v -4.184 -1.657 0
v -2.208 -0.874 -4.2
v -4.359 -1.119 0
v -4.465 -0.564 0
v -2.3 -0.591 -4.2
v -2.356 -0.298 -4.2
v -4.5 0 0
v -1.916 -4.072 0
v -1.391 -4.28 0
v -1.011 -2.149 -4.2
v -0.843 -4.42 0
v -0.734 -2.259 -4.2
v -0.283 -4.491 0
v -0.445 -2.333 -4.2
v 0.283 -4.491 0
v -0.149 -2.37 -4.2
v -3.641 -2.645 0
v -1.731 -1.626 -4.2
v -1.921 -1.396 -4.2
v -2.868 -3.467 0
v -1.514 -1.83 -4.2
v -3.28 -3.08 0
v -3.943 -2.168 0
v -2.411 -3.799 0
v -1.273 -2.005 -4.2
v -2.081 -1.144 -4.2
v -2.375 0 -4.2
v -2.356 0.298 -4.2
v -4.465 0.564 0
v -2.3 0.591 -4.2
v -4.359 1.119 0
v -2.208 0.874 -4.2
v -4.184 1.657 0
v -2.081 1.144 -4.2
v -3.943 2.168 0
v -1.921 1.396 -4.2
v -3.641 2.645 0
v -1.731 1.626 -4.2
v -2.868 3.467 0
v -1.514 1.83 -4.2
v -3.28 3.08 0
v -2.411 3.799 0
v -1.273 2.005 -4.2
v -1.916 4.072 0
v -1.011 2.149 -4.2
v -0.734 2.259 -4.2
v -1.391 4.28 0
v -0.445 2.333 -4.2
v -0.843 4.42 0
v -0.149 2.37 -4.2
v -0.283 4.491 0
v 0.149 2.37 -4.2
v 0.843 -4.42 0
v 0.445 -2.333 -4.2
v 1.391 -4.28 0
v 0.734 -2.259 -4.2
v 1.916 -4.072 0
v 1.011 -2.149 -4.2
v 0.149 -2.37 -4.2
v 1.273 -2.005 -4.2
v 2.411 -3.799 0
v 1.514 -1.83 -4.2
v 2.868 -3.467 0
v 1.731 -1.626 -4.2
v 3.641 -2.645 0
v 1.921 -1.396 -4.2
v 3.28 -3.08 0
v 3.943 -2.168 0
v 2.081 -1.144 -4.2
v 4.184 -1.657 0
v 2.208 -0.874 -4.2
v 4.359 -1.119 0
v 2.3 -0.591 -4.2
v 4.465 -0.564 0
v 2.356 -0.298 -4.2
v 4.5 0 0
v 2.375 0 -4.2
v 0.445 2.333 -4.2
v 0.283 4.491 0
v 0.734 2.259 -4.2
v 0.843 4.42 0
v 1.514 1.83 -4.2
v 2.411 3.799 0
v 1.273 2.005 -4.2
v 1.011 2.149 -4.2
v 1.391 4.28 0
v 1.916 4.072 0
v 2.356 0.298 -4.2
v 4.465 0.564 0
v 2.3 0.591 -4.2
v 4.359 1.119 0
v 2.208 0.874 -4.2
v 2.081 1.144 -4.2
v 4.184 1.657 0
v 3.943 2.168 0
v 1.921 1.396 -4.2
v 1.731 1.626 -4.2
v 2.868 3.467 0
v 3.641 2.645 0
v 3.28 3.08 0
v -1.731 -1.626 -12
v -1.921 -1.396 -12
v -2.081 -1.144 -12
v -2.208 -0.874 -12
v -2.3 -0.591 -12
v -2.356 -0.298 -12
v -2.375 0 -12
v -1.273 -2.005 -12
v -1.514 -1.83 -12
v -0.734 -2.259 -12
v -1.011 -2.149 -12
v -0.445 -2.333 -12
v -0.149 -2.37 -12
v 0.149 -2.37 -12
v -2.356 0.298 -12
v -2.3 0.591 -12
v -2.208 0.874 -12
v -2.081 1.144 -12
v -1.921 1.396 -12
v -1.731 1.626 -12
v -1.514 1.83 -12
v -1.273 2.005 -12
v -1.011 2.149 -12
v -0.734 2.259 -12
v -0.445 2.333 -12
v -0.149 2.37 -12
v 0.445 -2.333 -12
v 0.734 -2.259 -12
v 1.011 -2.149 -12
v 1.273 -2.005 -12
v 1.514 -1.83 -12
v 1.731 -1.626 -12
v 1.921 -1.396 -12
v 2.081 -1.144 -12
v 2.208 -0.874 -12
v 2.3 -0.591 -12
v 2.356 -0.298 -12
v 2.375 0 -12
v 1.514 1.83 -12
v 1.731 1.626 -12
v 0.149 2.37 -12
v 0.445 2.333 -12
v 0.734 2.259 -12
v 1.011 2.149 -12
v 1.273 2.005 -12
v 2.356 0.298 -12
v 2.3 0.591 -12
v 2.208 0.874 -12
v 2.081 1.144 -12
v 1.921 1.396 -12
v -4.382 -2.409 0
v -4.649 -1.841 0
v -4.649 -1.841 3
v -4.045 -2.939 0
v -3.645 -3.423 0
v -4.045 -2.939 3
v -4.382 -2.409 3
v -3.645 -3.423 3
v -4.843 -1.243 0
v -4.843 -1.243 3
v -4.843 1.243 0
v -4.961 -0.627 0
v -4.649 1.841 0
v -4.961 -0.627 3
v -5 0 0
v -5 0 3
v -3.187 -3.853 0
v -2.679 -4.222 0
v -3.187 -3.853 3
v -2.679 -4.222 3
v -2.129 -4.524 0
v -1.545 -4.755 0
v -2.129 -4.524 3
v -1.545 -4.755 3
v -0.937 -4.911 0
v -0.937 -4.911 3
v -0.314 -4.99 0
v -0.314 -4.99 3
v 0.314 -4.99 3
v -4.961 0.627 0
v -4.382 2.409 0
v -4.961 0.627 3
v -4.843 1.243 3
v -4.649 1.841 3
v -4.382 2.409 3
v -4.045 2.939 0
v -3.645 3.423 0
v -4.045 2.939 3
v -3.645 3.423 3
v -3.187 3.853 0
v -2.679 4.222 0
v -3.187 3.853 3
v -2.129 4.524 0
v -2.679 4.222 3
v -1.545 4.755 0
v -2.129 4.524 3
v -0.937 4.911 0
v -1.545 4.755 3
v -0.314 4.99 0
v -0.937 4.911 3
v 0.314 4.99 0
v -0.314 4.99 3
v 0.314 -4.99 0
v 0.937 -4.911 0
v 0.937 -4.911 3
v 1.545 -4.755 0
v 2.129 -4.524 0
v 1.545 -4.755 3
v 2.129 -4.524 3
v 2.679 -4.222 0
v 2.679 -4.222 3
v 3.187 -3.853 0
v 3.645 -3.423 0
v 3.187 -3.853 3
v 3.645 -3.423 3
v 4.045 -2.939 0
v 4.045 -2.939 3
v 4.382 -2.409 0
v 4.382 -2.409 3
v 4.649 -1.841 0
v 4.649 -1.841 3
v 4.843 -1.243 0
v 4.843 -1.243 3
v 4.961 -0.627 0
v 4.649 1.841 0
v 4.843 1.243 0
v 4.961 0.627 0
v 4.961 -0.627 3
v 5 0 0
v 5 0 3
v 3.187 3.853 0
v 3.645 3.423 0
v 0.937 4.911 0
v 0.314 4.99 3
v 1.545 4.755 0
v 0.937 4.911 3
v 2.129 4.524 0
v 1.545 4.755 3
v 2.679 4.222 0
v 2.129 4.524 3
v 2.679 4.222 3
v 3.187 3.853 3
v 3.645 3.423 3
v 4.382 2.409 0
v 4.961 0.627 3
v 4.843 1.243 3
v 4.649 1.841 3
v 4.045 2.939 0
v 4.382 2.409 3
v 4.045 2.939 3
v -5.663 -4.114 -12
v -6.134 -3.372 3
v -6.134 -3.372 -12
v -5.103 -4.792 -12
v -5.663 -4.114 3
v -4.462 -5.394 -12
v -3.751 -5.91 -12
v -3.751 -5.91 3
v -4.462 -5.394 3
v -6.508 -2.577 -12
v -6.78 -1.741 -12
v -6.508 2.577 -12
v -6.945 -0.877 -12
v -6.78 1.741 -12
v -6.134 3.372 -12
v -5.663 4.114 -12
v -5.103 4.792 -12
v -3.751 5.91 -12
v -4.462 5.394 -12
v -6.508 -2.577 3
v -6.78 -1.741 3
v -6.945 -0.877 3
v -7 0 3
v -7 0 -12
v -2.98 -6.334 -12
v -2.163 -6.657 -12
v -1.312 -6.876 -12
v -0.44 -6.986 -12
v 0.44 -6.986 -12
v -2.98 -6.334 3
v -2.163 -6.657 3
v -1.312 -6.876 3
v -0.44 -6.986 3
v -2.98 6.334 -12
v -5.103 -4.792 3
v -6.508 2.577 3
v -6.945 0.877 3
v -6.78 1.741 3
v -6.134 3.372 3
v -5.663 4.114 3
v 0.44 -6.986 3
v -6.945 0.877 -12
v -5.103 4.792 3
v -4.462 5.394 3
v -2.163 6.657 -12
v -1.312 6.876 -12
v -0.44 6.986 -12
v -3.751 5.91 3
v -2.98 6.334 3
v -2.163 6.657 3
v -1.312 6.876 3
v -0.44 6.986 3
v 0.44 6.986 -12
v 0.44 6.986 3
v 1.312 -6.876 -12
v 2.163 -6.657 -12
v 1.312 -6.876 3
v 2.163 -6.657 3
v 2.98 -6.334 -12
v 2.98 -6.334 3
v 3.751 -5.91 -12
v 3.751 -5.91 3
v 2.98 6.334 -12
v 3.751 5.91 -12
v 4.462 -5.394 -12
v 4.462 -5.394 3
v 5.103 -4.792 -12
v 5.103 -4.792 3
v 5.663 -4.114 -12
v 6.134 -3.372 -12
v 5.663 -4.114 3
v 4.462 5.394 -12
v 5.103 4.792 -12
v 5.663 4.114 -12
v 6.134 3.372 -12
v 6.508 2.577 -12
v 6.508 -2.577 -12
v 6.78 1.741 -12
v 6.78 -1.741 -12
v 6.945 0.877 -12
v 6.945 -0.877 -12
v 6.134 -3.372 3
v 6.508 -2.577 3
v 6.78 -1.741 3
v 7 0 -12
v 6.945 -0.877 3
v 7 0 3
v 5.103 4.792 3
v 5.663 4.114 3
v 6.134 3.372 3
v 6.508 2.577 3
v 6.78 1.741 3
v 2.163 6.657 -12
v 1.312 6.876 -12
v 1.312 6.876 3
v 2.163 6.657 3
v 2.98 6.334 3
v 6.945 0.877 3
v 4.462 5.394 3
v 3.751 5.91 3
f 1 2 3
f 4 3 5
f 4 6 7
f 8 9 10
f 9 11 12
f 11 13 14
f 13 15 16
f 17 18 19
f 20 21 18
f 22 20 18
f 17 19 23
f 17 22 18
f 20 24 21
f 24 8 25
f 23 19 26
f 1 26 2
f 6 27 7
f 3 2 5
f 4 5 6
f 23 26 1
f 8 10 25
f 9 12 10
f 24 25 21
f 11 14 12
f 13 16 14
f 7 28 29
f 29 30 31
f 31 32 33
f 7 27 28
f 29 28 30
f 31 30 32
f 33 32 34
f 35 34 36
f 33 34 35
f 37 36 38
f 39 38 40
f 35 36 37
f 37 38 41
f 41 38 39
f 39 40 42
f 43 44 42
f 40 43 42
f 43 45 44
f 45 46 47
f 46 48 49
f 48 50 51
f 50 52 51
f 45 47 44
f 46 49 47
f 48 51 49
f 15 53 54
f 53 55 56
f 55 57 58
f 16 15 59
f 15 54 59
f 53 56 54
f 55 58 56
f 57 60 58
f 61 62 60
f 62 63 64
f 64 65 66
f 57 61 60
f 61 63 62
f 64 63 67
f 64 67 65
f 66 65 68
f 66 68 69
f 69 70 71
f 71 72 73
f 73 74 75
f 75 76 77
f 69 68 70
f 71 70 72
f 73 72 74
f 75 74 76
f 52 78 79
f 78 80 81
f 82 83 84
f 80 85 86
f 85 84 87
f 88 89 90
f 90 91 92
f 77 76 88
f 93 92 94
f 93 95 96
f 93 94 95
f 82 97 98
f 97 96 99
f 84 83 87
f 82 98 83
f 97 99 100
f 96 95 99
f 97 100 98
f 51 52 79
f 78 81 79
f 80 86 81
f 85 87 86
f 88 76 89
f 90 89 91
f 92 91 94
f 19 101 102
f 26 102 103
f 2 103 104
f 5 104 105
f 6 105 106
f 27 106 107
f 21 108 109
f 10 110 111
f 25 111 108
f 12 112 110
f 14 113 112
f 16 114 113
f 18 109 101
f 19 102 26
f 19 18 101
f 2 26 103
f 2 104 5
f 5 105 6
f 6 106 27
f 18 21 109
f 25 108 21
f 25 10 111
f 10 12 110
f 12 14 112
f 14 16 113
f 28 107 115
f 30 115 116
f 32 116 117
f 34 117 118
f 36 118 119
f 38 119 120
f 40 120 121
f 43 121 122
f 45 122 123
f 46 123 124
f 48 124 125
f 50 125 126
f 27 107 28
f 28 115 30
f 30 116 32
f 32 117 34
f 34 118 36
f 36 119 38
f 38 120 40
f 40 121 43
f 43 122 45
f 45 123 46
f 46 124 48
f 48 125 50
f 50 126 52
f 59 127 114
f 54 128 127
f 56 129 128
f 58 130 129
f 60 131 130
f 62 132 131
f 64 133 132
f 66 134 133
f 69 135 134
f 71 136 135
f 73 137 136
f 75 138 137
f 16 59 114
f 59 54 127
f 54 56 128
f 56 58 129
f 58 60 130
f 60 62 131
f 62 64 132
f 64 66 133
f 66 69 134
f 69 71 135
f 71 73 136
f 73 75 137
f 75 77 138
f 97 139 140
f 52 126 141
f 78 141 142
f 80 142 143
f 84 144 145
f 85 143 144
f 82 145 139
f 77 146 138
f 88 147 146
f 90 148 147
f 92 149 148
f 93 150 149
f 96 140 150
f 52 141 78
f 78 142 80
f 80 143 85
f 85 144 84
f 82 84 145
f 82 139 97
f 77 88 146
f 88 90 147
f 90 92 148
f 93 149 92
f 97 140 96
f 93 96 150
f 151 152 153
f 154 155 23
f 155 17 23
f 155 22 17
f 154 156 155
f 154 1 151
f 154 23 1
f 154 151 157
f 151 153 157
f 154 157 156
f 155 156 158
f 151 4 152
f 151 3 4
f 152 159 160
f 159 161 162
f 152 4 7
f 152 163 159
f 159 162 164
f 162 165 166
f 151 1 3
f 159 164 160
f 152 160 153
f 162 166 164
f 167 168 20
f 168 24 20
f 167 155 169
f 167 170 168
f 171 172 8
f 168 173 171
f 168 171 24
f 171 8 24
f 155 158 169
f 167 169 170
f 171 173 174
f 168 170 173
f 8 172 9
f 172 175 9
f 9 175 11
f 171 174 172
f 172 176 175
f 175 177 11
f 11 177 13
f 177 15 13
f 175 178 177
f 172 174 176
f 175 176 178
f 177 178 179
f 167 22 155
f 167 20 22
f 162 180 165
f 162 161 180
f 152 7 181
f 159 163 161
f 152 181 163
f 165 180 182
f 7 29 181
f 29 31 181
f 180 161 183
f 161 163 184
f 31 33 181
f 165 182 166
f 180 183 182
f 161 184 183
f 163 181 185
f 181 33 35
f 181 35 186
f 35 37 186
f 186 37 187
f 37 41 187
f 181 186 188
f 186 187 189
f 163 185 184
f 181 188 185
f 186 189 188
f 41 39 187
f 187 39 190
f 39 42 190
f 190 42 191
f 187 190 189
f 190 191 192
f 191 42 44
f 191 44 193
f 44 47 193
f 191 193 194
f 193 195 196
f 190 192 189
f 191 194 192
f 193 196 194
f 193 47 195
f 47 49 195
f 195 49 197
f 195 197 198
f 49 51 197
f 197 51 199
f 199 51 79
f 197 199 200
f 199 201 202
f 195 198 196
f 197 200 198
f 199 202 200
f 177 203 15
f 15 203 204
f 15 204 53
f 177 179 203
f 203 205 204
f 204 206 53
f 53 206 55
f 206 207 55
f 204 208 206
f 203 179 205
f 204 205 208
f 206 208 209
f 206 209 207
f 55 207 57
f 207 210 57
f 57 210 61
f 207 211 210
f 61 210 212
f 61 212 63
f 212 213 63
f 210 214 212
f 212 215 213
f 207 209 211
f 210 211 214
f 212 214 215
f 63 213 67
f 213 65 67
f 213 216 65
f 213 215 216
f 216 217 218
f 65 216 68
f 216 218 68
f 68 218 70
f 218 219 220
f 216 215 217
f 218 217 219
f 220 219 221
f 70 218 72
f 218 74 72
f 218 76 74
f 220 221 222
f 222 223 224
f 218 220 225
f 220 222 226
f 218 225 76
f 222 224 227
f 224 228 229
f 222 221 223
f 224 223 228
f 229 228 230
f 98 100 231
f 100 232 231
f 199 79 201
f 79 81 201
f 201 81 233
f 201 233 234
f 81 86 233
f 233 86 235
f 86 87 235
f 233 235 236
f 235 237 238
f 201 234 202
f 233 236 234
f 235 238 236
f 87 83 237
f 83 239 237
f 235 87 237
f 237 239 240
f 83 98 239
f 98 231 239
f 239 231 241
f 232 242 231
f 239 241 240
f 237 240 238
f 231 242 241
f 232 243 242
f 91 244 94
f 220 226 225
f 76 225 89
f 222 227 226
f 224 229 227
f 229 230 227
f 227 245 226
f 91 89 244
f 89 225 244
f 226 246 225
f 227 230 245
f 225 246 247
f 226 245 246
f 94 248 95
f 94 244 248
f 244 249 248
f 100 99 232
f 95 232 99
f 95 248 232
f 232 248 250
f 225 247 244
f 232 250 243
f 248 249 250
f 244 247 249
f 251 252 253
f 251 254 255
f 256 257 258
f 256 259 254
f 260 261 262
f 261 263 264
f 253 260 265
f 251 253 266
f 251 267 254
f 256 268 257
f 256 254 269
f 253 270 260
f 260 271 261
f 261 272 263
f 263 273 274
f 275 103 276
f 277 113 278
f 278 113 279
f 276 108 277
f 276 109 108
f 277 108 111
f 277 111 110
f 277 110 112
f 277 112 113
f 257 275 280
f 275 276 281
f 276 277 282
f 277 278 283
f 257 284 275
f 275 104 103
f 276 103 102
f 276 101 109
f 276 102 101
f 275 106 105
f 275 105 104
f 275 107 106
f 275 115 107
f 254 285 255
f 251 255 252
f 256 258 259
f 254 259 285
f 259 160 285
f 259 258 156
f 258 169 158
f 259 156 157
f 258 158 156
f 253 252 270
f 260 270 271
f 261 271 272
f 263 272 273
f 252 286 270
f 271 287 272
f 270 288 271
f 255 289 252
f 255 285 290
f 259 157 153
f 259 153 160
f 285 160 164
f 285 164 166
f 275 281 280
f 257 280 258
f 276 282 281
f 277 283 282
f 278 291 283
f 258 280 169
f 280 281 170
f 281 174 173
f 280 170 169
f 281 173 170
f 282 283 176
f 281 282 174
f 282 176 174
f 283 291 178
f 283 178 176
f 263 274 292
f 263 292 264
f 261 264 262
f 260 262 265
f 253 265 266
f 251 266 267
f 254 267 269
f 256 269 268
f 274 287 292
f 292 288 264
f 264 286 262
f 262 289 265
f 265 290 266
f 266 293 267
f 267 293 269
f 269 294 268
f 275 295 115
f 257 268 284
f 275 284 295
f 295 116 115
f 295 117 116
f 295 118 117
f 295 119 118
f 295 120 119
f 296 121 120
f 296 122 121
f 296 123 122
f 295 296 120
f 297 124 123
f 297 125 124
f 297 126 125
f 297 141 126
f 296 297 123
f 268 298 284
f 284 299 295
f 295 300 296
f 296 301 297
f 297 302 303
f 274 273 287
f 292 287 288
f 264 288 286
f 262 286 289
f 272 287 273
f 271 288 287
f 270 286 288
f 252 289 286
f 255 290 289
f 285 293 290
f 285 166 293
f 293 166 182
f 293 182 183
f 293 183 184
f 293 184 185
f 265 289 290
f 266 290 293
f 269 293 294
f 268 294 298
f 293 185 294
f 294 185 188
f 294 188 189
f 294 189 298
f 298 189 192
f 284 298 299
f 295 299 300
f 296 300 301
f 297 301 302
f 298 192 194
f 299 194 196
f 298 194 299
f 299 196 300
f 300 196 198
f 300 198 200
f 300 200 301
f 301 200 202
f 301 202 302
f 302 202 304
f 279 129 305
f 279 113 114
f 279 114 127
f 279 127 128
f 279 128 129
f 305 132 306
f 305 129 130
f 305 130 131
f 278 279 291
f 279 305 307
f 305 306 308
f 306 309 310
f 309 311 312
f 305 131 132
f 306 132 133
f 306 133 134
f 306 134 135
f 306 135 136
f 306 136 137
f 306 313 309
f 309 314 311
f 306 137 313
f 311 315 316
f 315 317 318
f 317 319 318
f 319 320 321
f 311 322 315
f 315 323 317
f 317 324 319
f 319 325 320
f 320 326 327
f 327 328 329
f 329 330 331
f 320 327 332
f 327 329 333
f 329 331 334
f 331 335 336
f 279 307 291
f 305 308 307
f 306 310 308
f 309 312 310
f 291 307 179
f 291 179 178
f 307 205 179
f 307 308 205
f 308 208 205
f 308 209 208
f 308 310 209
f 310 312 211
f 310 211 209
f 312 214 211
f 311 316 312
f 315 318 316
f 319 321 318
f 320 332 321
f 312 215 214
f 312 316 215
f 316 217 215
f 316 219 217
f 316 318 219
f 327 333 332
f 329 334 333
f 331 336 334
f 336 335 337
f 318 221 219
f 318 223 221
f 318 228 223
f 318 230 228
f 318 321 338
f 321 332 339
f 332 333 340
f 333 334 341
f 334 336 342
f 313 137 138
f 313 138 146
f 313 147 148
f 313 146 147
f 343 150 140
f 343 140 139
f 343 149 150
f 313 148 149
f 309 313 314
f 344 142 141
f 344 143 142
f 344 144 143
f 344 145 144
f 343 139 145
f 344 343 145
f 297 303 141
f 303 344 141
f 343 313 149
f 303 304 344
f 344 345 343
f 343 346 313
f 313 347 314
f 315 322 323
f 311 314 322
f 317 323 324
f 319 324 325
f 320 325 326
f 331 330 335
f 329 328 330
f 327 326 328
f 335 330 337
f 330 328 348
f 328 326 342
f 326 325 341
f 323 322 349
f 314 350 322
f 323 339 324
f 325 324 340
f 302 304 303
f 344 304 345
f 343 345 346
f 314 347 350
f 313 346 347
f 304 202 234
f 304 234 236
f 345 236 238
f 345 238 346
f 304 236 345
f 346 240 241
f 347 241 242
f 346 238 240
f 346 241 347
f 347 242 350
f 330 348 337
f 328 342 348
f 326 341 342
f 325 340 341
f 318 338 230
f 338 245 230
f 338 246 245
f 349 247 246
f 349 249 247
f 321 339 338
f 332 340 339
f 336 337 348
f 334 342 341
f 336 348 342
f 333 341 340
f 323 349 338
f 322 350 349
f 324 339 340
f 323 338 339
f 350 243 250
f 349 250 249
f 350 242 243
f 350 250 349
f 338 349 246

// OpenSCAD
$fn = 50;

difference() {
	union() {
		translate(v = [0, 0, -12.0]) {
			cylinder(h = 15, r = 7.0);
		}
	}
	union() {
		translate(v = [0, 0, 0]) {
			rotate(a = [0, 0, 0]) {
				difference() {
					union() {
						translate(v = [0, 0, -15.0]) {
							cylinder(h = 15, r = 2.25);
						}
						translate(v = [0, 0, -4.2]) {
							cylinder(h = 4.2, r1 = 2.375, r2 = 4.5);
						}
						translate(v = [0, 0, -15.0]) {
							cylinder(h = 15, r = 2.375);
						}
						translate(v = [0, 0, -15.0]) {
							cylinder(h = 15, r = 2.25);
						}
					}
					union();
				}
			}
		}
		#cylinder(h = 3, r = 5.0);
	}
}
